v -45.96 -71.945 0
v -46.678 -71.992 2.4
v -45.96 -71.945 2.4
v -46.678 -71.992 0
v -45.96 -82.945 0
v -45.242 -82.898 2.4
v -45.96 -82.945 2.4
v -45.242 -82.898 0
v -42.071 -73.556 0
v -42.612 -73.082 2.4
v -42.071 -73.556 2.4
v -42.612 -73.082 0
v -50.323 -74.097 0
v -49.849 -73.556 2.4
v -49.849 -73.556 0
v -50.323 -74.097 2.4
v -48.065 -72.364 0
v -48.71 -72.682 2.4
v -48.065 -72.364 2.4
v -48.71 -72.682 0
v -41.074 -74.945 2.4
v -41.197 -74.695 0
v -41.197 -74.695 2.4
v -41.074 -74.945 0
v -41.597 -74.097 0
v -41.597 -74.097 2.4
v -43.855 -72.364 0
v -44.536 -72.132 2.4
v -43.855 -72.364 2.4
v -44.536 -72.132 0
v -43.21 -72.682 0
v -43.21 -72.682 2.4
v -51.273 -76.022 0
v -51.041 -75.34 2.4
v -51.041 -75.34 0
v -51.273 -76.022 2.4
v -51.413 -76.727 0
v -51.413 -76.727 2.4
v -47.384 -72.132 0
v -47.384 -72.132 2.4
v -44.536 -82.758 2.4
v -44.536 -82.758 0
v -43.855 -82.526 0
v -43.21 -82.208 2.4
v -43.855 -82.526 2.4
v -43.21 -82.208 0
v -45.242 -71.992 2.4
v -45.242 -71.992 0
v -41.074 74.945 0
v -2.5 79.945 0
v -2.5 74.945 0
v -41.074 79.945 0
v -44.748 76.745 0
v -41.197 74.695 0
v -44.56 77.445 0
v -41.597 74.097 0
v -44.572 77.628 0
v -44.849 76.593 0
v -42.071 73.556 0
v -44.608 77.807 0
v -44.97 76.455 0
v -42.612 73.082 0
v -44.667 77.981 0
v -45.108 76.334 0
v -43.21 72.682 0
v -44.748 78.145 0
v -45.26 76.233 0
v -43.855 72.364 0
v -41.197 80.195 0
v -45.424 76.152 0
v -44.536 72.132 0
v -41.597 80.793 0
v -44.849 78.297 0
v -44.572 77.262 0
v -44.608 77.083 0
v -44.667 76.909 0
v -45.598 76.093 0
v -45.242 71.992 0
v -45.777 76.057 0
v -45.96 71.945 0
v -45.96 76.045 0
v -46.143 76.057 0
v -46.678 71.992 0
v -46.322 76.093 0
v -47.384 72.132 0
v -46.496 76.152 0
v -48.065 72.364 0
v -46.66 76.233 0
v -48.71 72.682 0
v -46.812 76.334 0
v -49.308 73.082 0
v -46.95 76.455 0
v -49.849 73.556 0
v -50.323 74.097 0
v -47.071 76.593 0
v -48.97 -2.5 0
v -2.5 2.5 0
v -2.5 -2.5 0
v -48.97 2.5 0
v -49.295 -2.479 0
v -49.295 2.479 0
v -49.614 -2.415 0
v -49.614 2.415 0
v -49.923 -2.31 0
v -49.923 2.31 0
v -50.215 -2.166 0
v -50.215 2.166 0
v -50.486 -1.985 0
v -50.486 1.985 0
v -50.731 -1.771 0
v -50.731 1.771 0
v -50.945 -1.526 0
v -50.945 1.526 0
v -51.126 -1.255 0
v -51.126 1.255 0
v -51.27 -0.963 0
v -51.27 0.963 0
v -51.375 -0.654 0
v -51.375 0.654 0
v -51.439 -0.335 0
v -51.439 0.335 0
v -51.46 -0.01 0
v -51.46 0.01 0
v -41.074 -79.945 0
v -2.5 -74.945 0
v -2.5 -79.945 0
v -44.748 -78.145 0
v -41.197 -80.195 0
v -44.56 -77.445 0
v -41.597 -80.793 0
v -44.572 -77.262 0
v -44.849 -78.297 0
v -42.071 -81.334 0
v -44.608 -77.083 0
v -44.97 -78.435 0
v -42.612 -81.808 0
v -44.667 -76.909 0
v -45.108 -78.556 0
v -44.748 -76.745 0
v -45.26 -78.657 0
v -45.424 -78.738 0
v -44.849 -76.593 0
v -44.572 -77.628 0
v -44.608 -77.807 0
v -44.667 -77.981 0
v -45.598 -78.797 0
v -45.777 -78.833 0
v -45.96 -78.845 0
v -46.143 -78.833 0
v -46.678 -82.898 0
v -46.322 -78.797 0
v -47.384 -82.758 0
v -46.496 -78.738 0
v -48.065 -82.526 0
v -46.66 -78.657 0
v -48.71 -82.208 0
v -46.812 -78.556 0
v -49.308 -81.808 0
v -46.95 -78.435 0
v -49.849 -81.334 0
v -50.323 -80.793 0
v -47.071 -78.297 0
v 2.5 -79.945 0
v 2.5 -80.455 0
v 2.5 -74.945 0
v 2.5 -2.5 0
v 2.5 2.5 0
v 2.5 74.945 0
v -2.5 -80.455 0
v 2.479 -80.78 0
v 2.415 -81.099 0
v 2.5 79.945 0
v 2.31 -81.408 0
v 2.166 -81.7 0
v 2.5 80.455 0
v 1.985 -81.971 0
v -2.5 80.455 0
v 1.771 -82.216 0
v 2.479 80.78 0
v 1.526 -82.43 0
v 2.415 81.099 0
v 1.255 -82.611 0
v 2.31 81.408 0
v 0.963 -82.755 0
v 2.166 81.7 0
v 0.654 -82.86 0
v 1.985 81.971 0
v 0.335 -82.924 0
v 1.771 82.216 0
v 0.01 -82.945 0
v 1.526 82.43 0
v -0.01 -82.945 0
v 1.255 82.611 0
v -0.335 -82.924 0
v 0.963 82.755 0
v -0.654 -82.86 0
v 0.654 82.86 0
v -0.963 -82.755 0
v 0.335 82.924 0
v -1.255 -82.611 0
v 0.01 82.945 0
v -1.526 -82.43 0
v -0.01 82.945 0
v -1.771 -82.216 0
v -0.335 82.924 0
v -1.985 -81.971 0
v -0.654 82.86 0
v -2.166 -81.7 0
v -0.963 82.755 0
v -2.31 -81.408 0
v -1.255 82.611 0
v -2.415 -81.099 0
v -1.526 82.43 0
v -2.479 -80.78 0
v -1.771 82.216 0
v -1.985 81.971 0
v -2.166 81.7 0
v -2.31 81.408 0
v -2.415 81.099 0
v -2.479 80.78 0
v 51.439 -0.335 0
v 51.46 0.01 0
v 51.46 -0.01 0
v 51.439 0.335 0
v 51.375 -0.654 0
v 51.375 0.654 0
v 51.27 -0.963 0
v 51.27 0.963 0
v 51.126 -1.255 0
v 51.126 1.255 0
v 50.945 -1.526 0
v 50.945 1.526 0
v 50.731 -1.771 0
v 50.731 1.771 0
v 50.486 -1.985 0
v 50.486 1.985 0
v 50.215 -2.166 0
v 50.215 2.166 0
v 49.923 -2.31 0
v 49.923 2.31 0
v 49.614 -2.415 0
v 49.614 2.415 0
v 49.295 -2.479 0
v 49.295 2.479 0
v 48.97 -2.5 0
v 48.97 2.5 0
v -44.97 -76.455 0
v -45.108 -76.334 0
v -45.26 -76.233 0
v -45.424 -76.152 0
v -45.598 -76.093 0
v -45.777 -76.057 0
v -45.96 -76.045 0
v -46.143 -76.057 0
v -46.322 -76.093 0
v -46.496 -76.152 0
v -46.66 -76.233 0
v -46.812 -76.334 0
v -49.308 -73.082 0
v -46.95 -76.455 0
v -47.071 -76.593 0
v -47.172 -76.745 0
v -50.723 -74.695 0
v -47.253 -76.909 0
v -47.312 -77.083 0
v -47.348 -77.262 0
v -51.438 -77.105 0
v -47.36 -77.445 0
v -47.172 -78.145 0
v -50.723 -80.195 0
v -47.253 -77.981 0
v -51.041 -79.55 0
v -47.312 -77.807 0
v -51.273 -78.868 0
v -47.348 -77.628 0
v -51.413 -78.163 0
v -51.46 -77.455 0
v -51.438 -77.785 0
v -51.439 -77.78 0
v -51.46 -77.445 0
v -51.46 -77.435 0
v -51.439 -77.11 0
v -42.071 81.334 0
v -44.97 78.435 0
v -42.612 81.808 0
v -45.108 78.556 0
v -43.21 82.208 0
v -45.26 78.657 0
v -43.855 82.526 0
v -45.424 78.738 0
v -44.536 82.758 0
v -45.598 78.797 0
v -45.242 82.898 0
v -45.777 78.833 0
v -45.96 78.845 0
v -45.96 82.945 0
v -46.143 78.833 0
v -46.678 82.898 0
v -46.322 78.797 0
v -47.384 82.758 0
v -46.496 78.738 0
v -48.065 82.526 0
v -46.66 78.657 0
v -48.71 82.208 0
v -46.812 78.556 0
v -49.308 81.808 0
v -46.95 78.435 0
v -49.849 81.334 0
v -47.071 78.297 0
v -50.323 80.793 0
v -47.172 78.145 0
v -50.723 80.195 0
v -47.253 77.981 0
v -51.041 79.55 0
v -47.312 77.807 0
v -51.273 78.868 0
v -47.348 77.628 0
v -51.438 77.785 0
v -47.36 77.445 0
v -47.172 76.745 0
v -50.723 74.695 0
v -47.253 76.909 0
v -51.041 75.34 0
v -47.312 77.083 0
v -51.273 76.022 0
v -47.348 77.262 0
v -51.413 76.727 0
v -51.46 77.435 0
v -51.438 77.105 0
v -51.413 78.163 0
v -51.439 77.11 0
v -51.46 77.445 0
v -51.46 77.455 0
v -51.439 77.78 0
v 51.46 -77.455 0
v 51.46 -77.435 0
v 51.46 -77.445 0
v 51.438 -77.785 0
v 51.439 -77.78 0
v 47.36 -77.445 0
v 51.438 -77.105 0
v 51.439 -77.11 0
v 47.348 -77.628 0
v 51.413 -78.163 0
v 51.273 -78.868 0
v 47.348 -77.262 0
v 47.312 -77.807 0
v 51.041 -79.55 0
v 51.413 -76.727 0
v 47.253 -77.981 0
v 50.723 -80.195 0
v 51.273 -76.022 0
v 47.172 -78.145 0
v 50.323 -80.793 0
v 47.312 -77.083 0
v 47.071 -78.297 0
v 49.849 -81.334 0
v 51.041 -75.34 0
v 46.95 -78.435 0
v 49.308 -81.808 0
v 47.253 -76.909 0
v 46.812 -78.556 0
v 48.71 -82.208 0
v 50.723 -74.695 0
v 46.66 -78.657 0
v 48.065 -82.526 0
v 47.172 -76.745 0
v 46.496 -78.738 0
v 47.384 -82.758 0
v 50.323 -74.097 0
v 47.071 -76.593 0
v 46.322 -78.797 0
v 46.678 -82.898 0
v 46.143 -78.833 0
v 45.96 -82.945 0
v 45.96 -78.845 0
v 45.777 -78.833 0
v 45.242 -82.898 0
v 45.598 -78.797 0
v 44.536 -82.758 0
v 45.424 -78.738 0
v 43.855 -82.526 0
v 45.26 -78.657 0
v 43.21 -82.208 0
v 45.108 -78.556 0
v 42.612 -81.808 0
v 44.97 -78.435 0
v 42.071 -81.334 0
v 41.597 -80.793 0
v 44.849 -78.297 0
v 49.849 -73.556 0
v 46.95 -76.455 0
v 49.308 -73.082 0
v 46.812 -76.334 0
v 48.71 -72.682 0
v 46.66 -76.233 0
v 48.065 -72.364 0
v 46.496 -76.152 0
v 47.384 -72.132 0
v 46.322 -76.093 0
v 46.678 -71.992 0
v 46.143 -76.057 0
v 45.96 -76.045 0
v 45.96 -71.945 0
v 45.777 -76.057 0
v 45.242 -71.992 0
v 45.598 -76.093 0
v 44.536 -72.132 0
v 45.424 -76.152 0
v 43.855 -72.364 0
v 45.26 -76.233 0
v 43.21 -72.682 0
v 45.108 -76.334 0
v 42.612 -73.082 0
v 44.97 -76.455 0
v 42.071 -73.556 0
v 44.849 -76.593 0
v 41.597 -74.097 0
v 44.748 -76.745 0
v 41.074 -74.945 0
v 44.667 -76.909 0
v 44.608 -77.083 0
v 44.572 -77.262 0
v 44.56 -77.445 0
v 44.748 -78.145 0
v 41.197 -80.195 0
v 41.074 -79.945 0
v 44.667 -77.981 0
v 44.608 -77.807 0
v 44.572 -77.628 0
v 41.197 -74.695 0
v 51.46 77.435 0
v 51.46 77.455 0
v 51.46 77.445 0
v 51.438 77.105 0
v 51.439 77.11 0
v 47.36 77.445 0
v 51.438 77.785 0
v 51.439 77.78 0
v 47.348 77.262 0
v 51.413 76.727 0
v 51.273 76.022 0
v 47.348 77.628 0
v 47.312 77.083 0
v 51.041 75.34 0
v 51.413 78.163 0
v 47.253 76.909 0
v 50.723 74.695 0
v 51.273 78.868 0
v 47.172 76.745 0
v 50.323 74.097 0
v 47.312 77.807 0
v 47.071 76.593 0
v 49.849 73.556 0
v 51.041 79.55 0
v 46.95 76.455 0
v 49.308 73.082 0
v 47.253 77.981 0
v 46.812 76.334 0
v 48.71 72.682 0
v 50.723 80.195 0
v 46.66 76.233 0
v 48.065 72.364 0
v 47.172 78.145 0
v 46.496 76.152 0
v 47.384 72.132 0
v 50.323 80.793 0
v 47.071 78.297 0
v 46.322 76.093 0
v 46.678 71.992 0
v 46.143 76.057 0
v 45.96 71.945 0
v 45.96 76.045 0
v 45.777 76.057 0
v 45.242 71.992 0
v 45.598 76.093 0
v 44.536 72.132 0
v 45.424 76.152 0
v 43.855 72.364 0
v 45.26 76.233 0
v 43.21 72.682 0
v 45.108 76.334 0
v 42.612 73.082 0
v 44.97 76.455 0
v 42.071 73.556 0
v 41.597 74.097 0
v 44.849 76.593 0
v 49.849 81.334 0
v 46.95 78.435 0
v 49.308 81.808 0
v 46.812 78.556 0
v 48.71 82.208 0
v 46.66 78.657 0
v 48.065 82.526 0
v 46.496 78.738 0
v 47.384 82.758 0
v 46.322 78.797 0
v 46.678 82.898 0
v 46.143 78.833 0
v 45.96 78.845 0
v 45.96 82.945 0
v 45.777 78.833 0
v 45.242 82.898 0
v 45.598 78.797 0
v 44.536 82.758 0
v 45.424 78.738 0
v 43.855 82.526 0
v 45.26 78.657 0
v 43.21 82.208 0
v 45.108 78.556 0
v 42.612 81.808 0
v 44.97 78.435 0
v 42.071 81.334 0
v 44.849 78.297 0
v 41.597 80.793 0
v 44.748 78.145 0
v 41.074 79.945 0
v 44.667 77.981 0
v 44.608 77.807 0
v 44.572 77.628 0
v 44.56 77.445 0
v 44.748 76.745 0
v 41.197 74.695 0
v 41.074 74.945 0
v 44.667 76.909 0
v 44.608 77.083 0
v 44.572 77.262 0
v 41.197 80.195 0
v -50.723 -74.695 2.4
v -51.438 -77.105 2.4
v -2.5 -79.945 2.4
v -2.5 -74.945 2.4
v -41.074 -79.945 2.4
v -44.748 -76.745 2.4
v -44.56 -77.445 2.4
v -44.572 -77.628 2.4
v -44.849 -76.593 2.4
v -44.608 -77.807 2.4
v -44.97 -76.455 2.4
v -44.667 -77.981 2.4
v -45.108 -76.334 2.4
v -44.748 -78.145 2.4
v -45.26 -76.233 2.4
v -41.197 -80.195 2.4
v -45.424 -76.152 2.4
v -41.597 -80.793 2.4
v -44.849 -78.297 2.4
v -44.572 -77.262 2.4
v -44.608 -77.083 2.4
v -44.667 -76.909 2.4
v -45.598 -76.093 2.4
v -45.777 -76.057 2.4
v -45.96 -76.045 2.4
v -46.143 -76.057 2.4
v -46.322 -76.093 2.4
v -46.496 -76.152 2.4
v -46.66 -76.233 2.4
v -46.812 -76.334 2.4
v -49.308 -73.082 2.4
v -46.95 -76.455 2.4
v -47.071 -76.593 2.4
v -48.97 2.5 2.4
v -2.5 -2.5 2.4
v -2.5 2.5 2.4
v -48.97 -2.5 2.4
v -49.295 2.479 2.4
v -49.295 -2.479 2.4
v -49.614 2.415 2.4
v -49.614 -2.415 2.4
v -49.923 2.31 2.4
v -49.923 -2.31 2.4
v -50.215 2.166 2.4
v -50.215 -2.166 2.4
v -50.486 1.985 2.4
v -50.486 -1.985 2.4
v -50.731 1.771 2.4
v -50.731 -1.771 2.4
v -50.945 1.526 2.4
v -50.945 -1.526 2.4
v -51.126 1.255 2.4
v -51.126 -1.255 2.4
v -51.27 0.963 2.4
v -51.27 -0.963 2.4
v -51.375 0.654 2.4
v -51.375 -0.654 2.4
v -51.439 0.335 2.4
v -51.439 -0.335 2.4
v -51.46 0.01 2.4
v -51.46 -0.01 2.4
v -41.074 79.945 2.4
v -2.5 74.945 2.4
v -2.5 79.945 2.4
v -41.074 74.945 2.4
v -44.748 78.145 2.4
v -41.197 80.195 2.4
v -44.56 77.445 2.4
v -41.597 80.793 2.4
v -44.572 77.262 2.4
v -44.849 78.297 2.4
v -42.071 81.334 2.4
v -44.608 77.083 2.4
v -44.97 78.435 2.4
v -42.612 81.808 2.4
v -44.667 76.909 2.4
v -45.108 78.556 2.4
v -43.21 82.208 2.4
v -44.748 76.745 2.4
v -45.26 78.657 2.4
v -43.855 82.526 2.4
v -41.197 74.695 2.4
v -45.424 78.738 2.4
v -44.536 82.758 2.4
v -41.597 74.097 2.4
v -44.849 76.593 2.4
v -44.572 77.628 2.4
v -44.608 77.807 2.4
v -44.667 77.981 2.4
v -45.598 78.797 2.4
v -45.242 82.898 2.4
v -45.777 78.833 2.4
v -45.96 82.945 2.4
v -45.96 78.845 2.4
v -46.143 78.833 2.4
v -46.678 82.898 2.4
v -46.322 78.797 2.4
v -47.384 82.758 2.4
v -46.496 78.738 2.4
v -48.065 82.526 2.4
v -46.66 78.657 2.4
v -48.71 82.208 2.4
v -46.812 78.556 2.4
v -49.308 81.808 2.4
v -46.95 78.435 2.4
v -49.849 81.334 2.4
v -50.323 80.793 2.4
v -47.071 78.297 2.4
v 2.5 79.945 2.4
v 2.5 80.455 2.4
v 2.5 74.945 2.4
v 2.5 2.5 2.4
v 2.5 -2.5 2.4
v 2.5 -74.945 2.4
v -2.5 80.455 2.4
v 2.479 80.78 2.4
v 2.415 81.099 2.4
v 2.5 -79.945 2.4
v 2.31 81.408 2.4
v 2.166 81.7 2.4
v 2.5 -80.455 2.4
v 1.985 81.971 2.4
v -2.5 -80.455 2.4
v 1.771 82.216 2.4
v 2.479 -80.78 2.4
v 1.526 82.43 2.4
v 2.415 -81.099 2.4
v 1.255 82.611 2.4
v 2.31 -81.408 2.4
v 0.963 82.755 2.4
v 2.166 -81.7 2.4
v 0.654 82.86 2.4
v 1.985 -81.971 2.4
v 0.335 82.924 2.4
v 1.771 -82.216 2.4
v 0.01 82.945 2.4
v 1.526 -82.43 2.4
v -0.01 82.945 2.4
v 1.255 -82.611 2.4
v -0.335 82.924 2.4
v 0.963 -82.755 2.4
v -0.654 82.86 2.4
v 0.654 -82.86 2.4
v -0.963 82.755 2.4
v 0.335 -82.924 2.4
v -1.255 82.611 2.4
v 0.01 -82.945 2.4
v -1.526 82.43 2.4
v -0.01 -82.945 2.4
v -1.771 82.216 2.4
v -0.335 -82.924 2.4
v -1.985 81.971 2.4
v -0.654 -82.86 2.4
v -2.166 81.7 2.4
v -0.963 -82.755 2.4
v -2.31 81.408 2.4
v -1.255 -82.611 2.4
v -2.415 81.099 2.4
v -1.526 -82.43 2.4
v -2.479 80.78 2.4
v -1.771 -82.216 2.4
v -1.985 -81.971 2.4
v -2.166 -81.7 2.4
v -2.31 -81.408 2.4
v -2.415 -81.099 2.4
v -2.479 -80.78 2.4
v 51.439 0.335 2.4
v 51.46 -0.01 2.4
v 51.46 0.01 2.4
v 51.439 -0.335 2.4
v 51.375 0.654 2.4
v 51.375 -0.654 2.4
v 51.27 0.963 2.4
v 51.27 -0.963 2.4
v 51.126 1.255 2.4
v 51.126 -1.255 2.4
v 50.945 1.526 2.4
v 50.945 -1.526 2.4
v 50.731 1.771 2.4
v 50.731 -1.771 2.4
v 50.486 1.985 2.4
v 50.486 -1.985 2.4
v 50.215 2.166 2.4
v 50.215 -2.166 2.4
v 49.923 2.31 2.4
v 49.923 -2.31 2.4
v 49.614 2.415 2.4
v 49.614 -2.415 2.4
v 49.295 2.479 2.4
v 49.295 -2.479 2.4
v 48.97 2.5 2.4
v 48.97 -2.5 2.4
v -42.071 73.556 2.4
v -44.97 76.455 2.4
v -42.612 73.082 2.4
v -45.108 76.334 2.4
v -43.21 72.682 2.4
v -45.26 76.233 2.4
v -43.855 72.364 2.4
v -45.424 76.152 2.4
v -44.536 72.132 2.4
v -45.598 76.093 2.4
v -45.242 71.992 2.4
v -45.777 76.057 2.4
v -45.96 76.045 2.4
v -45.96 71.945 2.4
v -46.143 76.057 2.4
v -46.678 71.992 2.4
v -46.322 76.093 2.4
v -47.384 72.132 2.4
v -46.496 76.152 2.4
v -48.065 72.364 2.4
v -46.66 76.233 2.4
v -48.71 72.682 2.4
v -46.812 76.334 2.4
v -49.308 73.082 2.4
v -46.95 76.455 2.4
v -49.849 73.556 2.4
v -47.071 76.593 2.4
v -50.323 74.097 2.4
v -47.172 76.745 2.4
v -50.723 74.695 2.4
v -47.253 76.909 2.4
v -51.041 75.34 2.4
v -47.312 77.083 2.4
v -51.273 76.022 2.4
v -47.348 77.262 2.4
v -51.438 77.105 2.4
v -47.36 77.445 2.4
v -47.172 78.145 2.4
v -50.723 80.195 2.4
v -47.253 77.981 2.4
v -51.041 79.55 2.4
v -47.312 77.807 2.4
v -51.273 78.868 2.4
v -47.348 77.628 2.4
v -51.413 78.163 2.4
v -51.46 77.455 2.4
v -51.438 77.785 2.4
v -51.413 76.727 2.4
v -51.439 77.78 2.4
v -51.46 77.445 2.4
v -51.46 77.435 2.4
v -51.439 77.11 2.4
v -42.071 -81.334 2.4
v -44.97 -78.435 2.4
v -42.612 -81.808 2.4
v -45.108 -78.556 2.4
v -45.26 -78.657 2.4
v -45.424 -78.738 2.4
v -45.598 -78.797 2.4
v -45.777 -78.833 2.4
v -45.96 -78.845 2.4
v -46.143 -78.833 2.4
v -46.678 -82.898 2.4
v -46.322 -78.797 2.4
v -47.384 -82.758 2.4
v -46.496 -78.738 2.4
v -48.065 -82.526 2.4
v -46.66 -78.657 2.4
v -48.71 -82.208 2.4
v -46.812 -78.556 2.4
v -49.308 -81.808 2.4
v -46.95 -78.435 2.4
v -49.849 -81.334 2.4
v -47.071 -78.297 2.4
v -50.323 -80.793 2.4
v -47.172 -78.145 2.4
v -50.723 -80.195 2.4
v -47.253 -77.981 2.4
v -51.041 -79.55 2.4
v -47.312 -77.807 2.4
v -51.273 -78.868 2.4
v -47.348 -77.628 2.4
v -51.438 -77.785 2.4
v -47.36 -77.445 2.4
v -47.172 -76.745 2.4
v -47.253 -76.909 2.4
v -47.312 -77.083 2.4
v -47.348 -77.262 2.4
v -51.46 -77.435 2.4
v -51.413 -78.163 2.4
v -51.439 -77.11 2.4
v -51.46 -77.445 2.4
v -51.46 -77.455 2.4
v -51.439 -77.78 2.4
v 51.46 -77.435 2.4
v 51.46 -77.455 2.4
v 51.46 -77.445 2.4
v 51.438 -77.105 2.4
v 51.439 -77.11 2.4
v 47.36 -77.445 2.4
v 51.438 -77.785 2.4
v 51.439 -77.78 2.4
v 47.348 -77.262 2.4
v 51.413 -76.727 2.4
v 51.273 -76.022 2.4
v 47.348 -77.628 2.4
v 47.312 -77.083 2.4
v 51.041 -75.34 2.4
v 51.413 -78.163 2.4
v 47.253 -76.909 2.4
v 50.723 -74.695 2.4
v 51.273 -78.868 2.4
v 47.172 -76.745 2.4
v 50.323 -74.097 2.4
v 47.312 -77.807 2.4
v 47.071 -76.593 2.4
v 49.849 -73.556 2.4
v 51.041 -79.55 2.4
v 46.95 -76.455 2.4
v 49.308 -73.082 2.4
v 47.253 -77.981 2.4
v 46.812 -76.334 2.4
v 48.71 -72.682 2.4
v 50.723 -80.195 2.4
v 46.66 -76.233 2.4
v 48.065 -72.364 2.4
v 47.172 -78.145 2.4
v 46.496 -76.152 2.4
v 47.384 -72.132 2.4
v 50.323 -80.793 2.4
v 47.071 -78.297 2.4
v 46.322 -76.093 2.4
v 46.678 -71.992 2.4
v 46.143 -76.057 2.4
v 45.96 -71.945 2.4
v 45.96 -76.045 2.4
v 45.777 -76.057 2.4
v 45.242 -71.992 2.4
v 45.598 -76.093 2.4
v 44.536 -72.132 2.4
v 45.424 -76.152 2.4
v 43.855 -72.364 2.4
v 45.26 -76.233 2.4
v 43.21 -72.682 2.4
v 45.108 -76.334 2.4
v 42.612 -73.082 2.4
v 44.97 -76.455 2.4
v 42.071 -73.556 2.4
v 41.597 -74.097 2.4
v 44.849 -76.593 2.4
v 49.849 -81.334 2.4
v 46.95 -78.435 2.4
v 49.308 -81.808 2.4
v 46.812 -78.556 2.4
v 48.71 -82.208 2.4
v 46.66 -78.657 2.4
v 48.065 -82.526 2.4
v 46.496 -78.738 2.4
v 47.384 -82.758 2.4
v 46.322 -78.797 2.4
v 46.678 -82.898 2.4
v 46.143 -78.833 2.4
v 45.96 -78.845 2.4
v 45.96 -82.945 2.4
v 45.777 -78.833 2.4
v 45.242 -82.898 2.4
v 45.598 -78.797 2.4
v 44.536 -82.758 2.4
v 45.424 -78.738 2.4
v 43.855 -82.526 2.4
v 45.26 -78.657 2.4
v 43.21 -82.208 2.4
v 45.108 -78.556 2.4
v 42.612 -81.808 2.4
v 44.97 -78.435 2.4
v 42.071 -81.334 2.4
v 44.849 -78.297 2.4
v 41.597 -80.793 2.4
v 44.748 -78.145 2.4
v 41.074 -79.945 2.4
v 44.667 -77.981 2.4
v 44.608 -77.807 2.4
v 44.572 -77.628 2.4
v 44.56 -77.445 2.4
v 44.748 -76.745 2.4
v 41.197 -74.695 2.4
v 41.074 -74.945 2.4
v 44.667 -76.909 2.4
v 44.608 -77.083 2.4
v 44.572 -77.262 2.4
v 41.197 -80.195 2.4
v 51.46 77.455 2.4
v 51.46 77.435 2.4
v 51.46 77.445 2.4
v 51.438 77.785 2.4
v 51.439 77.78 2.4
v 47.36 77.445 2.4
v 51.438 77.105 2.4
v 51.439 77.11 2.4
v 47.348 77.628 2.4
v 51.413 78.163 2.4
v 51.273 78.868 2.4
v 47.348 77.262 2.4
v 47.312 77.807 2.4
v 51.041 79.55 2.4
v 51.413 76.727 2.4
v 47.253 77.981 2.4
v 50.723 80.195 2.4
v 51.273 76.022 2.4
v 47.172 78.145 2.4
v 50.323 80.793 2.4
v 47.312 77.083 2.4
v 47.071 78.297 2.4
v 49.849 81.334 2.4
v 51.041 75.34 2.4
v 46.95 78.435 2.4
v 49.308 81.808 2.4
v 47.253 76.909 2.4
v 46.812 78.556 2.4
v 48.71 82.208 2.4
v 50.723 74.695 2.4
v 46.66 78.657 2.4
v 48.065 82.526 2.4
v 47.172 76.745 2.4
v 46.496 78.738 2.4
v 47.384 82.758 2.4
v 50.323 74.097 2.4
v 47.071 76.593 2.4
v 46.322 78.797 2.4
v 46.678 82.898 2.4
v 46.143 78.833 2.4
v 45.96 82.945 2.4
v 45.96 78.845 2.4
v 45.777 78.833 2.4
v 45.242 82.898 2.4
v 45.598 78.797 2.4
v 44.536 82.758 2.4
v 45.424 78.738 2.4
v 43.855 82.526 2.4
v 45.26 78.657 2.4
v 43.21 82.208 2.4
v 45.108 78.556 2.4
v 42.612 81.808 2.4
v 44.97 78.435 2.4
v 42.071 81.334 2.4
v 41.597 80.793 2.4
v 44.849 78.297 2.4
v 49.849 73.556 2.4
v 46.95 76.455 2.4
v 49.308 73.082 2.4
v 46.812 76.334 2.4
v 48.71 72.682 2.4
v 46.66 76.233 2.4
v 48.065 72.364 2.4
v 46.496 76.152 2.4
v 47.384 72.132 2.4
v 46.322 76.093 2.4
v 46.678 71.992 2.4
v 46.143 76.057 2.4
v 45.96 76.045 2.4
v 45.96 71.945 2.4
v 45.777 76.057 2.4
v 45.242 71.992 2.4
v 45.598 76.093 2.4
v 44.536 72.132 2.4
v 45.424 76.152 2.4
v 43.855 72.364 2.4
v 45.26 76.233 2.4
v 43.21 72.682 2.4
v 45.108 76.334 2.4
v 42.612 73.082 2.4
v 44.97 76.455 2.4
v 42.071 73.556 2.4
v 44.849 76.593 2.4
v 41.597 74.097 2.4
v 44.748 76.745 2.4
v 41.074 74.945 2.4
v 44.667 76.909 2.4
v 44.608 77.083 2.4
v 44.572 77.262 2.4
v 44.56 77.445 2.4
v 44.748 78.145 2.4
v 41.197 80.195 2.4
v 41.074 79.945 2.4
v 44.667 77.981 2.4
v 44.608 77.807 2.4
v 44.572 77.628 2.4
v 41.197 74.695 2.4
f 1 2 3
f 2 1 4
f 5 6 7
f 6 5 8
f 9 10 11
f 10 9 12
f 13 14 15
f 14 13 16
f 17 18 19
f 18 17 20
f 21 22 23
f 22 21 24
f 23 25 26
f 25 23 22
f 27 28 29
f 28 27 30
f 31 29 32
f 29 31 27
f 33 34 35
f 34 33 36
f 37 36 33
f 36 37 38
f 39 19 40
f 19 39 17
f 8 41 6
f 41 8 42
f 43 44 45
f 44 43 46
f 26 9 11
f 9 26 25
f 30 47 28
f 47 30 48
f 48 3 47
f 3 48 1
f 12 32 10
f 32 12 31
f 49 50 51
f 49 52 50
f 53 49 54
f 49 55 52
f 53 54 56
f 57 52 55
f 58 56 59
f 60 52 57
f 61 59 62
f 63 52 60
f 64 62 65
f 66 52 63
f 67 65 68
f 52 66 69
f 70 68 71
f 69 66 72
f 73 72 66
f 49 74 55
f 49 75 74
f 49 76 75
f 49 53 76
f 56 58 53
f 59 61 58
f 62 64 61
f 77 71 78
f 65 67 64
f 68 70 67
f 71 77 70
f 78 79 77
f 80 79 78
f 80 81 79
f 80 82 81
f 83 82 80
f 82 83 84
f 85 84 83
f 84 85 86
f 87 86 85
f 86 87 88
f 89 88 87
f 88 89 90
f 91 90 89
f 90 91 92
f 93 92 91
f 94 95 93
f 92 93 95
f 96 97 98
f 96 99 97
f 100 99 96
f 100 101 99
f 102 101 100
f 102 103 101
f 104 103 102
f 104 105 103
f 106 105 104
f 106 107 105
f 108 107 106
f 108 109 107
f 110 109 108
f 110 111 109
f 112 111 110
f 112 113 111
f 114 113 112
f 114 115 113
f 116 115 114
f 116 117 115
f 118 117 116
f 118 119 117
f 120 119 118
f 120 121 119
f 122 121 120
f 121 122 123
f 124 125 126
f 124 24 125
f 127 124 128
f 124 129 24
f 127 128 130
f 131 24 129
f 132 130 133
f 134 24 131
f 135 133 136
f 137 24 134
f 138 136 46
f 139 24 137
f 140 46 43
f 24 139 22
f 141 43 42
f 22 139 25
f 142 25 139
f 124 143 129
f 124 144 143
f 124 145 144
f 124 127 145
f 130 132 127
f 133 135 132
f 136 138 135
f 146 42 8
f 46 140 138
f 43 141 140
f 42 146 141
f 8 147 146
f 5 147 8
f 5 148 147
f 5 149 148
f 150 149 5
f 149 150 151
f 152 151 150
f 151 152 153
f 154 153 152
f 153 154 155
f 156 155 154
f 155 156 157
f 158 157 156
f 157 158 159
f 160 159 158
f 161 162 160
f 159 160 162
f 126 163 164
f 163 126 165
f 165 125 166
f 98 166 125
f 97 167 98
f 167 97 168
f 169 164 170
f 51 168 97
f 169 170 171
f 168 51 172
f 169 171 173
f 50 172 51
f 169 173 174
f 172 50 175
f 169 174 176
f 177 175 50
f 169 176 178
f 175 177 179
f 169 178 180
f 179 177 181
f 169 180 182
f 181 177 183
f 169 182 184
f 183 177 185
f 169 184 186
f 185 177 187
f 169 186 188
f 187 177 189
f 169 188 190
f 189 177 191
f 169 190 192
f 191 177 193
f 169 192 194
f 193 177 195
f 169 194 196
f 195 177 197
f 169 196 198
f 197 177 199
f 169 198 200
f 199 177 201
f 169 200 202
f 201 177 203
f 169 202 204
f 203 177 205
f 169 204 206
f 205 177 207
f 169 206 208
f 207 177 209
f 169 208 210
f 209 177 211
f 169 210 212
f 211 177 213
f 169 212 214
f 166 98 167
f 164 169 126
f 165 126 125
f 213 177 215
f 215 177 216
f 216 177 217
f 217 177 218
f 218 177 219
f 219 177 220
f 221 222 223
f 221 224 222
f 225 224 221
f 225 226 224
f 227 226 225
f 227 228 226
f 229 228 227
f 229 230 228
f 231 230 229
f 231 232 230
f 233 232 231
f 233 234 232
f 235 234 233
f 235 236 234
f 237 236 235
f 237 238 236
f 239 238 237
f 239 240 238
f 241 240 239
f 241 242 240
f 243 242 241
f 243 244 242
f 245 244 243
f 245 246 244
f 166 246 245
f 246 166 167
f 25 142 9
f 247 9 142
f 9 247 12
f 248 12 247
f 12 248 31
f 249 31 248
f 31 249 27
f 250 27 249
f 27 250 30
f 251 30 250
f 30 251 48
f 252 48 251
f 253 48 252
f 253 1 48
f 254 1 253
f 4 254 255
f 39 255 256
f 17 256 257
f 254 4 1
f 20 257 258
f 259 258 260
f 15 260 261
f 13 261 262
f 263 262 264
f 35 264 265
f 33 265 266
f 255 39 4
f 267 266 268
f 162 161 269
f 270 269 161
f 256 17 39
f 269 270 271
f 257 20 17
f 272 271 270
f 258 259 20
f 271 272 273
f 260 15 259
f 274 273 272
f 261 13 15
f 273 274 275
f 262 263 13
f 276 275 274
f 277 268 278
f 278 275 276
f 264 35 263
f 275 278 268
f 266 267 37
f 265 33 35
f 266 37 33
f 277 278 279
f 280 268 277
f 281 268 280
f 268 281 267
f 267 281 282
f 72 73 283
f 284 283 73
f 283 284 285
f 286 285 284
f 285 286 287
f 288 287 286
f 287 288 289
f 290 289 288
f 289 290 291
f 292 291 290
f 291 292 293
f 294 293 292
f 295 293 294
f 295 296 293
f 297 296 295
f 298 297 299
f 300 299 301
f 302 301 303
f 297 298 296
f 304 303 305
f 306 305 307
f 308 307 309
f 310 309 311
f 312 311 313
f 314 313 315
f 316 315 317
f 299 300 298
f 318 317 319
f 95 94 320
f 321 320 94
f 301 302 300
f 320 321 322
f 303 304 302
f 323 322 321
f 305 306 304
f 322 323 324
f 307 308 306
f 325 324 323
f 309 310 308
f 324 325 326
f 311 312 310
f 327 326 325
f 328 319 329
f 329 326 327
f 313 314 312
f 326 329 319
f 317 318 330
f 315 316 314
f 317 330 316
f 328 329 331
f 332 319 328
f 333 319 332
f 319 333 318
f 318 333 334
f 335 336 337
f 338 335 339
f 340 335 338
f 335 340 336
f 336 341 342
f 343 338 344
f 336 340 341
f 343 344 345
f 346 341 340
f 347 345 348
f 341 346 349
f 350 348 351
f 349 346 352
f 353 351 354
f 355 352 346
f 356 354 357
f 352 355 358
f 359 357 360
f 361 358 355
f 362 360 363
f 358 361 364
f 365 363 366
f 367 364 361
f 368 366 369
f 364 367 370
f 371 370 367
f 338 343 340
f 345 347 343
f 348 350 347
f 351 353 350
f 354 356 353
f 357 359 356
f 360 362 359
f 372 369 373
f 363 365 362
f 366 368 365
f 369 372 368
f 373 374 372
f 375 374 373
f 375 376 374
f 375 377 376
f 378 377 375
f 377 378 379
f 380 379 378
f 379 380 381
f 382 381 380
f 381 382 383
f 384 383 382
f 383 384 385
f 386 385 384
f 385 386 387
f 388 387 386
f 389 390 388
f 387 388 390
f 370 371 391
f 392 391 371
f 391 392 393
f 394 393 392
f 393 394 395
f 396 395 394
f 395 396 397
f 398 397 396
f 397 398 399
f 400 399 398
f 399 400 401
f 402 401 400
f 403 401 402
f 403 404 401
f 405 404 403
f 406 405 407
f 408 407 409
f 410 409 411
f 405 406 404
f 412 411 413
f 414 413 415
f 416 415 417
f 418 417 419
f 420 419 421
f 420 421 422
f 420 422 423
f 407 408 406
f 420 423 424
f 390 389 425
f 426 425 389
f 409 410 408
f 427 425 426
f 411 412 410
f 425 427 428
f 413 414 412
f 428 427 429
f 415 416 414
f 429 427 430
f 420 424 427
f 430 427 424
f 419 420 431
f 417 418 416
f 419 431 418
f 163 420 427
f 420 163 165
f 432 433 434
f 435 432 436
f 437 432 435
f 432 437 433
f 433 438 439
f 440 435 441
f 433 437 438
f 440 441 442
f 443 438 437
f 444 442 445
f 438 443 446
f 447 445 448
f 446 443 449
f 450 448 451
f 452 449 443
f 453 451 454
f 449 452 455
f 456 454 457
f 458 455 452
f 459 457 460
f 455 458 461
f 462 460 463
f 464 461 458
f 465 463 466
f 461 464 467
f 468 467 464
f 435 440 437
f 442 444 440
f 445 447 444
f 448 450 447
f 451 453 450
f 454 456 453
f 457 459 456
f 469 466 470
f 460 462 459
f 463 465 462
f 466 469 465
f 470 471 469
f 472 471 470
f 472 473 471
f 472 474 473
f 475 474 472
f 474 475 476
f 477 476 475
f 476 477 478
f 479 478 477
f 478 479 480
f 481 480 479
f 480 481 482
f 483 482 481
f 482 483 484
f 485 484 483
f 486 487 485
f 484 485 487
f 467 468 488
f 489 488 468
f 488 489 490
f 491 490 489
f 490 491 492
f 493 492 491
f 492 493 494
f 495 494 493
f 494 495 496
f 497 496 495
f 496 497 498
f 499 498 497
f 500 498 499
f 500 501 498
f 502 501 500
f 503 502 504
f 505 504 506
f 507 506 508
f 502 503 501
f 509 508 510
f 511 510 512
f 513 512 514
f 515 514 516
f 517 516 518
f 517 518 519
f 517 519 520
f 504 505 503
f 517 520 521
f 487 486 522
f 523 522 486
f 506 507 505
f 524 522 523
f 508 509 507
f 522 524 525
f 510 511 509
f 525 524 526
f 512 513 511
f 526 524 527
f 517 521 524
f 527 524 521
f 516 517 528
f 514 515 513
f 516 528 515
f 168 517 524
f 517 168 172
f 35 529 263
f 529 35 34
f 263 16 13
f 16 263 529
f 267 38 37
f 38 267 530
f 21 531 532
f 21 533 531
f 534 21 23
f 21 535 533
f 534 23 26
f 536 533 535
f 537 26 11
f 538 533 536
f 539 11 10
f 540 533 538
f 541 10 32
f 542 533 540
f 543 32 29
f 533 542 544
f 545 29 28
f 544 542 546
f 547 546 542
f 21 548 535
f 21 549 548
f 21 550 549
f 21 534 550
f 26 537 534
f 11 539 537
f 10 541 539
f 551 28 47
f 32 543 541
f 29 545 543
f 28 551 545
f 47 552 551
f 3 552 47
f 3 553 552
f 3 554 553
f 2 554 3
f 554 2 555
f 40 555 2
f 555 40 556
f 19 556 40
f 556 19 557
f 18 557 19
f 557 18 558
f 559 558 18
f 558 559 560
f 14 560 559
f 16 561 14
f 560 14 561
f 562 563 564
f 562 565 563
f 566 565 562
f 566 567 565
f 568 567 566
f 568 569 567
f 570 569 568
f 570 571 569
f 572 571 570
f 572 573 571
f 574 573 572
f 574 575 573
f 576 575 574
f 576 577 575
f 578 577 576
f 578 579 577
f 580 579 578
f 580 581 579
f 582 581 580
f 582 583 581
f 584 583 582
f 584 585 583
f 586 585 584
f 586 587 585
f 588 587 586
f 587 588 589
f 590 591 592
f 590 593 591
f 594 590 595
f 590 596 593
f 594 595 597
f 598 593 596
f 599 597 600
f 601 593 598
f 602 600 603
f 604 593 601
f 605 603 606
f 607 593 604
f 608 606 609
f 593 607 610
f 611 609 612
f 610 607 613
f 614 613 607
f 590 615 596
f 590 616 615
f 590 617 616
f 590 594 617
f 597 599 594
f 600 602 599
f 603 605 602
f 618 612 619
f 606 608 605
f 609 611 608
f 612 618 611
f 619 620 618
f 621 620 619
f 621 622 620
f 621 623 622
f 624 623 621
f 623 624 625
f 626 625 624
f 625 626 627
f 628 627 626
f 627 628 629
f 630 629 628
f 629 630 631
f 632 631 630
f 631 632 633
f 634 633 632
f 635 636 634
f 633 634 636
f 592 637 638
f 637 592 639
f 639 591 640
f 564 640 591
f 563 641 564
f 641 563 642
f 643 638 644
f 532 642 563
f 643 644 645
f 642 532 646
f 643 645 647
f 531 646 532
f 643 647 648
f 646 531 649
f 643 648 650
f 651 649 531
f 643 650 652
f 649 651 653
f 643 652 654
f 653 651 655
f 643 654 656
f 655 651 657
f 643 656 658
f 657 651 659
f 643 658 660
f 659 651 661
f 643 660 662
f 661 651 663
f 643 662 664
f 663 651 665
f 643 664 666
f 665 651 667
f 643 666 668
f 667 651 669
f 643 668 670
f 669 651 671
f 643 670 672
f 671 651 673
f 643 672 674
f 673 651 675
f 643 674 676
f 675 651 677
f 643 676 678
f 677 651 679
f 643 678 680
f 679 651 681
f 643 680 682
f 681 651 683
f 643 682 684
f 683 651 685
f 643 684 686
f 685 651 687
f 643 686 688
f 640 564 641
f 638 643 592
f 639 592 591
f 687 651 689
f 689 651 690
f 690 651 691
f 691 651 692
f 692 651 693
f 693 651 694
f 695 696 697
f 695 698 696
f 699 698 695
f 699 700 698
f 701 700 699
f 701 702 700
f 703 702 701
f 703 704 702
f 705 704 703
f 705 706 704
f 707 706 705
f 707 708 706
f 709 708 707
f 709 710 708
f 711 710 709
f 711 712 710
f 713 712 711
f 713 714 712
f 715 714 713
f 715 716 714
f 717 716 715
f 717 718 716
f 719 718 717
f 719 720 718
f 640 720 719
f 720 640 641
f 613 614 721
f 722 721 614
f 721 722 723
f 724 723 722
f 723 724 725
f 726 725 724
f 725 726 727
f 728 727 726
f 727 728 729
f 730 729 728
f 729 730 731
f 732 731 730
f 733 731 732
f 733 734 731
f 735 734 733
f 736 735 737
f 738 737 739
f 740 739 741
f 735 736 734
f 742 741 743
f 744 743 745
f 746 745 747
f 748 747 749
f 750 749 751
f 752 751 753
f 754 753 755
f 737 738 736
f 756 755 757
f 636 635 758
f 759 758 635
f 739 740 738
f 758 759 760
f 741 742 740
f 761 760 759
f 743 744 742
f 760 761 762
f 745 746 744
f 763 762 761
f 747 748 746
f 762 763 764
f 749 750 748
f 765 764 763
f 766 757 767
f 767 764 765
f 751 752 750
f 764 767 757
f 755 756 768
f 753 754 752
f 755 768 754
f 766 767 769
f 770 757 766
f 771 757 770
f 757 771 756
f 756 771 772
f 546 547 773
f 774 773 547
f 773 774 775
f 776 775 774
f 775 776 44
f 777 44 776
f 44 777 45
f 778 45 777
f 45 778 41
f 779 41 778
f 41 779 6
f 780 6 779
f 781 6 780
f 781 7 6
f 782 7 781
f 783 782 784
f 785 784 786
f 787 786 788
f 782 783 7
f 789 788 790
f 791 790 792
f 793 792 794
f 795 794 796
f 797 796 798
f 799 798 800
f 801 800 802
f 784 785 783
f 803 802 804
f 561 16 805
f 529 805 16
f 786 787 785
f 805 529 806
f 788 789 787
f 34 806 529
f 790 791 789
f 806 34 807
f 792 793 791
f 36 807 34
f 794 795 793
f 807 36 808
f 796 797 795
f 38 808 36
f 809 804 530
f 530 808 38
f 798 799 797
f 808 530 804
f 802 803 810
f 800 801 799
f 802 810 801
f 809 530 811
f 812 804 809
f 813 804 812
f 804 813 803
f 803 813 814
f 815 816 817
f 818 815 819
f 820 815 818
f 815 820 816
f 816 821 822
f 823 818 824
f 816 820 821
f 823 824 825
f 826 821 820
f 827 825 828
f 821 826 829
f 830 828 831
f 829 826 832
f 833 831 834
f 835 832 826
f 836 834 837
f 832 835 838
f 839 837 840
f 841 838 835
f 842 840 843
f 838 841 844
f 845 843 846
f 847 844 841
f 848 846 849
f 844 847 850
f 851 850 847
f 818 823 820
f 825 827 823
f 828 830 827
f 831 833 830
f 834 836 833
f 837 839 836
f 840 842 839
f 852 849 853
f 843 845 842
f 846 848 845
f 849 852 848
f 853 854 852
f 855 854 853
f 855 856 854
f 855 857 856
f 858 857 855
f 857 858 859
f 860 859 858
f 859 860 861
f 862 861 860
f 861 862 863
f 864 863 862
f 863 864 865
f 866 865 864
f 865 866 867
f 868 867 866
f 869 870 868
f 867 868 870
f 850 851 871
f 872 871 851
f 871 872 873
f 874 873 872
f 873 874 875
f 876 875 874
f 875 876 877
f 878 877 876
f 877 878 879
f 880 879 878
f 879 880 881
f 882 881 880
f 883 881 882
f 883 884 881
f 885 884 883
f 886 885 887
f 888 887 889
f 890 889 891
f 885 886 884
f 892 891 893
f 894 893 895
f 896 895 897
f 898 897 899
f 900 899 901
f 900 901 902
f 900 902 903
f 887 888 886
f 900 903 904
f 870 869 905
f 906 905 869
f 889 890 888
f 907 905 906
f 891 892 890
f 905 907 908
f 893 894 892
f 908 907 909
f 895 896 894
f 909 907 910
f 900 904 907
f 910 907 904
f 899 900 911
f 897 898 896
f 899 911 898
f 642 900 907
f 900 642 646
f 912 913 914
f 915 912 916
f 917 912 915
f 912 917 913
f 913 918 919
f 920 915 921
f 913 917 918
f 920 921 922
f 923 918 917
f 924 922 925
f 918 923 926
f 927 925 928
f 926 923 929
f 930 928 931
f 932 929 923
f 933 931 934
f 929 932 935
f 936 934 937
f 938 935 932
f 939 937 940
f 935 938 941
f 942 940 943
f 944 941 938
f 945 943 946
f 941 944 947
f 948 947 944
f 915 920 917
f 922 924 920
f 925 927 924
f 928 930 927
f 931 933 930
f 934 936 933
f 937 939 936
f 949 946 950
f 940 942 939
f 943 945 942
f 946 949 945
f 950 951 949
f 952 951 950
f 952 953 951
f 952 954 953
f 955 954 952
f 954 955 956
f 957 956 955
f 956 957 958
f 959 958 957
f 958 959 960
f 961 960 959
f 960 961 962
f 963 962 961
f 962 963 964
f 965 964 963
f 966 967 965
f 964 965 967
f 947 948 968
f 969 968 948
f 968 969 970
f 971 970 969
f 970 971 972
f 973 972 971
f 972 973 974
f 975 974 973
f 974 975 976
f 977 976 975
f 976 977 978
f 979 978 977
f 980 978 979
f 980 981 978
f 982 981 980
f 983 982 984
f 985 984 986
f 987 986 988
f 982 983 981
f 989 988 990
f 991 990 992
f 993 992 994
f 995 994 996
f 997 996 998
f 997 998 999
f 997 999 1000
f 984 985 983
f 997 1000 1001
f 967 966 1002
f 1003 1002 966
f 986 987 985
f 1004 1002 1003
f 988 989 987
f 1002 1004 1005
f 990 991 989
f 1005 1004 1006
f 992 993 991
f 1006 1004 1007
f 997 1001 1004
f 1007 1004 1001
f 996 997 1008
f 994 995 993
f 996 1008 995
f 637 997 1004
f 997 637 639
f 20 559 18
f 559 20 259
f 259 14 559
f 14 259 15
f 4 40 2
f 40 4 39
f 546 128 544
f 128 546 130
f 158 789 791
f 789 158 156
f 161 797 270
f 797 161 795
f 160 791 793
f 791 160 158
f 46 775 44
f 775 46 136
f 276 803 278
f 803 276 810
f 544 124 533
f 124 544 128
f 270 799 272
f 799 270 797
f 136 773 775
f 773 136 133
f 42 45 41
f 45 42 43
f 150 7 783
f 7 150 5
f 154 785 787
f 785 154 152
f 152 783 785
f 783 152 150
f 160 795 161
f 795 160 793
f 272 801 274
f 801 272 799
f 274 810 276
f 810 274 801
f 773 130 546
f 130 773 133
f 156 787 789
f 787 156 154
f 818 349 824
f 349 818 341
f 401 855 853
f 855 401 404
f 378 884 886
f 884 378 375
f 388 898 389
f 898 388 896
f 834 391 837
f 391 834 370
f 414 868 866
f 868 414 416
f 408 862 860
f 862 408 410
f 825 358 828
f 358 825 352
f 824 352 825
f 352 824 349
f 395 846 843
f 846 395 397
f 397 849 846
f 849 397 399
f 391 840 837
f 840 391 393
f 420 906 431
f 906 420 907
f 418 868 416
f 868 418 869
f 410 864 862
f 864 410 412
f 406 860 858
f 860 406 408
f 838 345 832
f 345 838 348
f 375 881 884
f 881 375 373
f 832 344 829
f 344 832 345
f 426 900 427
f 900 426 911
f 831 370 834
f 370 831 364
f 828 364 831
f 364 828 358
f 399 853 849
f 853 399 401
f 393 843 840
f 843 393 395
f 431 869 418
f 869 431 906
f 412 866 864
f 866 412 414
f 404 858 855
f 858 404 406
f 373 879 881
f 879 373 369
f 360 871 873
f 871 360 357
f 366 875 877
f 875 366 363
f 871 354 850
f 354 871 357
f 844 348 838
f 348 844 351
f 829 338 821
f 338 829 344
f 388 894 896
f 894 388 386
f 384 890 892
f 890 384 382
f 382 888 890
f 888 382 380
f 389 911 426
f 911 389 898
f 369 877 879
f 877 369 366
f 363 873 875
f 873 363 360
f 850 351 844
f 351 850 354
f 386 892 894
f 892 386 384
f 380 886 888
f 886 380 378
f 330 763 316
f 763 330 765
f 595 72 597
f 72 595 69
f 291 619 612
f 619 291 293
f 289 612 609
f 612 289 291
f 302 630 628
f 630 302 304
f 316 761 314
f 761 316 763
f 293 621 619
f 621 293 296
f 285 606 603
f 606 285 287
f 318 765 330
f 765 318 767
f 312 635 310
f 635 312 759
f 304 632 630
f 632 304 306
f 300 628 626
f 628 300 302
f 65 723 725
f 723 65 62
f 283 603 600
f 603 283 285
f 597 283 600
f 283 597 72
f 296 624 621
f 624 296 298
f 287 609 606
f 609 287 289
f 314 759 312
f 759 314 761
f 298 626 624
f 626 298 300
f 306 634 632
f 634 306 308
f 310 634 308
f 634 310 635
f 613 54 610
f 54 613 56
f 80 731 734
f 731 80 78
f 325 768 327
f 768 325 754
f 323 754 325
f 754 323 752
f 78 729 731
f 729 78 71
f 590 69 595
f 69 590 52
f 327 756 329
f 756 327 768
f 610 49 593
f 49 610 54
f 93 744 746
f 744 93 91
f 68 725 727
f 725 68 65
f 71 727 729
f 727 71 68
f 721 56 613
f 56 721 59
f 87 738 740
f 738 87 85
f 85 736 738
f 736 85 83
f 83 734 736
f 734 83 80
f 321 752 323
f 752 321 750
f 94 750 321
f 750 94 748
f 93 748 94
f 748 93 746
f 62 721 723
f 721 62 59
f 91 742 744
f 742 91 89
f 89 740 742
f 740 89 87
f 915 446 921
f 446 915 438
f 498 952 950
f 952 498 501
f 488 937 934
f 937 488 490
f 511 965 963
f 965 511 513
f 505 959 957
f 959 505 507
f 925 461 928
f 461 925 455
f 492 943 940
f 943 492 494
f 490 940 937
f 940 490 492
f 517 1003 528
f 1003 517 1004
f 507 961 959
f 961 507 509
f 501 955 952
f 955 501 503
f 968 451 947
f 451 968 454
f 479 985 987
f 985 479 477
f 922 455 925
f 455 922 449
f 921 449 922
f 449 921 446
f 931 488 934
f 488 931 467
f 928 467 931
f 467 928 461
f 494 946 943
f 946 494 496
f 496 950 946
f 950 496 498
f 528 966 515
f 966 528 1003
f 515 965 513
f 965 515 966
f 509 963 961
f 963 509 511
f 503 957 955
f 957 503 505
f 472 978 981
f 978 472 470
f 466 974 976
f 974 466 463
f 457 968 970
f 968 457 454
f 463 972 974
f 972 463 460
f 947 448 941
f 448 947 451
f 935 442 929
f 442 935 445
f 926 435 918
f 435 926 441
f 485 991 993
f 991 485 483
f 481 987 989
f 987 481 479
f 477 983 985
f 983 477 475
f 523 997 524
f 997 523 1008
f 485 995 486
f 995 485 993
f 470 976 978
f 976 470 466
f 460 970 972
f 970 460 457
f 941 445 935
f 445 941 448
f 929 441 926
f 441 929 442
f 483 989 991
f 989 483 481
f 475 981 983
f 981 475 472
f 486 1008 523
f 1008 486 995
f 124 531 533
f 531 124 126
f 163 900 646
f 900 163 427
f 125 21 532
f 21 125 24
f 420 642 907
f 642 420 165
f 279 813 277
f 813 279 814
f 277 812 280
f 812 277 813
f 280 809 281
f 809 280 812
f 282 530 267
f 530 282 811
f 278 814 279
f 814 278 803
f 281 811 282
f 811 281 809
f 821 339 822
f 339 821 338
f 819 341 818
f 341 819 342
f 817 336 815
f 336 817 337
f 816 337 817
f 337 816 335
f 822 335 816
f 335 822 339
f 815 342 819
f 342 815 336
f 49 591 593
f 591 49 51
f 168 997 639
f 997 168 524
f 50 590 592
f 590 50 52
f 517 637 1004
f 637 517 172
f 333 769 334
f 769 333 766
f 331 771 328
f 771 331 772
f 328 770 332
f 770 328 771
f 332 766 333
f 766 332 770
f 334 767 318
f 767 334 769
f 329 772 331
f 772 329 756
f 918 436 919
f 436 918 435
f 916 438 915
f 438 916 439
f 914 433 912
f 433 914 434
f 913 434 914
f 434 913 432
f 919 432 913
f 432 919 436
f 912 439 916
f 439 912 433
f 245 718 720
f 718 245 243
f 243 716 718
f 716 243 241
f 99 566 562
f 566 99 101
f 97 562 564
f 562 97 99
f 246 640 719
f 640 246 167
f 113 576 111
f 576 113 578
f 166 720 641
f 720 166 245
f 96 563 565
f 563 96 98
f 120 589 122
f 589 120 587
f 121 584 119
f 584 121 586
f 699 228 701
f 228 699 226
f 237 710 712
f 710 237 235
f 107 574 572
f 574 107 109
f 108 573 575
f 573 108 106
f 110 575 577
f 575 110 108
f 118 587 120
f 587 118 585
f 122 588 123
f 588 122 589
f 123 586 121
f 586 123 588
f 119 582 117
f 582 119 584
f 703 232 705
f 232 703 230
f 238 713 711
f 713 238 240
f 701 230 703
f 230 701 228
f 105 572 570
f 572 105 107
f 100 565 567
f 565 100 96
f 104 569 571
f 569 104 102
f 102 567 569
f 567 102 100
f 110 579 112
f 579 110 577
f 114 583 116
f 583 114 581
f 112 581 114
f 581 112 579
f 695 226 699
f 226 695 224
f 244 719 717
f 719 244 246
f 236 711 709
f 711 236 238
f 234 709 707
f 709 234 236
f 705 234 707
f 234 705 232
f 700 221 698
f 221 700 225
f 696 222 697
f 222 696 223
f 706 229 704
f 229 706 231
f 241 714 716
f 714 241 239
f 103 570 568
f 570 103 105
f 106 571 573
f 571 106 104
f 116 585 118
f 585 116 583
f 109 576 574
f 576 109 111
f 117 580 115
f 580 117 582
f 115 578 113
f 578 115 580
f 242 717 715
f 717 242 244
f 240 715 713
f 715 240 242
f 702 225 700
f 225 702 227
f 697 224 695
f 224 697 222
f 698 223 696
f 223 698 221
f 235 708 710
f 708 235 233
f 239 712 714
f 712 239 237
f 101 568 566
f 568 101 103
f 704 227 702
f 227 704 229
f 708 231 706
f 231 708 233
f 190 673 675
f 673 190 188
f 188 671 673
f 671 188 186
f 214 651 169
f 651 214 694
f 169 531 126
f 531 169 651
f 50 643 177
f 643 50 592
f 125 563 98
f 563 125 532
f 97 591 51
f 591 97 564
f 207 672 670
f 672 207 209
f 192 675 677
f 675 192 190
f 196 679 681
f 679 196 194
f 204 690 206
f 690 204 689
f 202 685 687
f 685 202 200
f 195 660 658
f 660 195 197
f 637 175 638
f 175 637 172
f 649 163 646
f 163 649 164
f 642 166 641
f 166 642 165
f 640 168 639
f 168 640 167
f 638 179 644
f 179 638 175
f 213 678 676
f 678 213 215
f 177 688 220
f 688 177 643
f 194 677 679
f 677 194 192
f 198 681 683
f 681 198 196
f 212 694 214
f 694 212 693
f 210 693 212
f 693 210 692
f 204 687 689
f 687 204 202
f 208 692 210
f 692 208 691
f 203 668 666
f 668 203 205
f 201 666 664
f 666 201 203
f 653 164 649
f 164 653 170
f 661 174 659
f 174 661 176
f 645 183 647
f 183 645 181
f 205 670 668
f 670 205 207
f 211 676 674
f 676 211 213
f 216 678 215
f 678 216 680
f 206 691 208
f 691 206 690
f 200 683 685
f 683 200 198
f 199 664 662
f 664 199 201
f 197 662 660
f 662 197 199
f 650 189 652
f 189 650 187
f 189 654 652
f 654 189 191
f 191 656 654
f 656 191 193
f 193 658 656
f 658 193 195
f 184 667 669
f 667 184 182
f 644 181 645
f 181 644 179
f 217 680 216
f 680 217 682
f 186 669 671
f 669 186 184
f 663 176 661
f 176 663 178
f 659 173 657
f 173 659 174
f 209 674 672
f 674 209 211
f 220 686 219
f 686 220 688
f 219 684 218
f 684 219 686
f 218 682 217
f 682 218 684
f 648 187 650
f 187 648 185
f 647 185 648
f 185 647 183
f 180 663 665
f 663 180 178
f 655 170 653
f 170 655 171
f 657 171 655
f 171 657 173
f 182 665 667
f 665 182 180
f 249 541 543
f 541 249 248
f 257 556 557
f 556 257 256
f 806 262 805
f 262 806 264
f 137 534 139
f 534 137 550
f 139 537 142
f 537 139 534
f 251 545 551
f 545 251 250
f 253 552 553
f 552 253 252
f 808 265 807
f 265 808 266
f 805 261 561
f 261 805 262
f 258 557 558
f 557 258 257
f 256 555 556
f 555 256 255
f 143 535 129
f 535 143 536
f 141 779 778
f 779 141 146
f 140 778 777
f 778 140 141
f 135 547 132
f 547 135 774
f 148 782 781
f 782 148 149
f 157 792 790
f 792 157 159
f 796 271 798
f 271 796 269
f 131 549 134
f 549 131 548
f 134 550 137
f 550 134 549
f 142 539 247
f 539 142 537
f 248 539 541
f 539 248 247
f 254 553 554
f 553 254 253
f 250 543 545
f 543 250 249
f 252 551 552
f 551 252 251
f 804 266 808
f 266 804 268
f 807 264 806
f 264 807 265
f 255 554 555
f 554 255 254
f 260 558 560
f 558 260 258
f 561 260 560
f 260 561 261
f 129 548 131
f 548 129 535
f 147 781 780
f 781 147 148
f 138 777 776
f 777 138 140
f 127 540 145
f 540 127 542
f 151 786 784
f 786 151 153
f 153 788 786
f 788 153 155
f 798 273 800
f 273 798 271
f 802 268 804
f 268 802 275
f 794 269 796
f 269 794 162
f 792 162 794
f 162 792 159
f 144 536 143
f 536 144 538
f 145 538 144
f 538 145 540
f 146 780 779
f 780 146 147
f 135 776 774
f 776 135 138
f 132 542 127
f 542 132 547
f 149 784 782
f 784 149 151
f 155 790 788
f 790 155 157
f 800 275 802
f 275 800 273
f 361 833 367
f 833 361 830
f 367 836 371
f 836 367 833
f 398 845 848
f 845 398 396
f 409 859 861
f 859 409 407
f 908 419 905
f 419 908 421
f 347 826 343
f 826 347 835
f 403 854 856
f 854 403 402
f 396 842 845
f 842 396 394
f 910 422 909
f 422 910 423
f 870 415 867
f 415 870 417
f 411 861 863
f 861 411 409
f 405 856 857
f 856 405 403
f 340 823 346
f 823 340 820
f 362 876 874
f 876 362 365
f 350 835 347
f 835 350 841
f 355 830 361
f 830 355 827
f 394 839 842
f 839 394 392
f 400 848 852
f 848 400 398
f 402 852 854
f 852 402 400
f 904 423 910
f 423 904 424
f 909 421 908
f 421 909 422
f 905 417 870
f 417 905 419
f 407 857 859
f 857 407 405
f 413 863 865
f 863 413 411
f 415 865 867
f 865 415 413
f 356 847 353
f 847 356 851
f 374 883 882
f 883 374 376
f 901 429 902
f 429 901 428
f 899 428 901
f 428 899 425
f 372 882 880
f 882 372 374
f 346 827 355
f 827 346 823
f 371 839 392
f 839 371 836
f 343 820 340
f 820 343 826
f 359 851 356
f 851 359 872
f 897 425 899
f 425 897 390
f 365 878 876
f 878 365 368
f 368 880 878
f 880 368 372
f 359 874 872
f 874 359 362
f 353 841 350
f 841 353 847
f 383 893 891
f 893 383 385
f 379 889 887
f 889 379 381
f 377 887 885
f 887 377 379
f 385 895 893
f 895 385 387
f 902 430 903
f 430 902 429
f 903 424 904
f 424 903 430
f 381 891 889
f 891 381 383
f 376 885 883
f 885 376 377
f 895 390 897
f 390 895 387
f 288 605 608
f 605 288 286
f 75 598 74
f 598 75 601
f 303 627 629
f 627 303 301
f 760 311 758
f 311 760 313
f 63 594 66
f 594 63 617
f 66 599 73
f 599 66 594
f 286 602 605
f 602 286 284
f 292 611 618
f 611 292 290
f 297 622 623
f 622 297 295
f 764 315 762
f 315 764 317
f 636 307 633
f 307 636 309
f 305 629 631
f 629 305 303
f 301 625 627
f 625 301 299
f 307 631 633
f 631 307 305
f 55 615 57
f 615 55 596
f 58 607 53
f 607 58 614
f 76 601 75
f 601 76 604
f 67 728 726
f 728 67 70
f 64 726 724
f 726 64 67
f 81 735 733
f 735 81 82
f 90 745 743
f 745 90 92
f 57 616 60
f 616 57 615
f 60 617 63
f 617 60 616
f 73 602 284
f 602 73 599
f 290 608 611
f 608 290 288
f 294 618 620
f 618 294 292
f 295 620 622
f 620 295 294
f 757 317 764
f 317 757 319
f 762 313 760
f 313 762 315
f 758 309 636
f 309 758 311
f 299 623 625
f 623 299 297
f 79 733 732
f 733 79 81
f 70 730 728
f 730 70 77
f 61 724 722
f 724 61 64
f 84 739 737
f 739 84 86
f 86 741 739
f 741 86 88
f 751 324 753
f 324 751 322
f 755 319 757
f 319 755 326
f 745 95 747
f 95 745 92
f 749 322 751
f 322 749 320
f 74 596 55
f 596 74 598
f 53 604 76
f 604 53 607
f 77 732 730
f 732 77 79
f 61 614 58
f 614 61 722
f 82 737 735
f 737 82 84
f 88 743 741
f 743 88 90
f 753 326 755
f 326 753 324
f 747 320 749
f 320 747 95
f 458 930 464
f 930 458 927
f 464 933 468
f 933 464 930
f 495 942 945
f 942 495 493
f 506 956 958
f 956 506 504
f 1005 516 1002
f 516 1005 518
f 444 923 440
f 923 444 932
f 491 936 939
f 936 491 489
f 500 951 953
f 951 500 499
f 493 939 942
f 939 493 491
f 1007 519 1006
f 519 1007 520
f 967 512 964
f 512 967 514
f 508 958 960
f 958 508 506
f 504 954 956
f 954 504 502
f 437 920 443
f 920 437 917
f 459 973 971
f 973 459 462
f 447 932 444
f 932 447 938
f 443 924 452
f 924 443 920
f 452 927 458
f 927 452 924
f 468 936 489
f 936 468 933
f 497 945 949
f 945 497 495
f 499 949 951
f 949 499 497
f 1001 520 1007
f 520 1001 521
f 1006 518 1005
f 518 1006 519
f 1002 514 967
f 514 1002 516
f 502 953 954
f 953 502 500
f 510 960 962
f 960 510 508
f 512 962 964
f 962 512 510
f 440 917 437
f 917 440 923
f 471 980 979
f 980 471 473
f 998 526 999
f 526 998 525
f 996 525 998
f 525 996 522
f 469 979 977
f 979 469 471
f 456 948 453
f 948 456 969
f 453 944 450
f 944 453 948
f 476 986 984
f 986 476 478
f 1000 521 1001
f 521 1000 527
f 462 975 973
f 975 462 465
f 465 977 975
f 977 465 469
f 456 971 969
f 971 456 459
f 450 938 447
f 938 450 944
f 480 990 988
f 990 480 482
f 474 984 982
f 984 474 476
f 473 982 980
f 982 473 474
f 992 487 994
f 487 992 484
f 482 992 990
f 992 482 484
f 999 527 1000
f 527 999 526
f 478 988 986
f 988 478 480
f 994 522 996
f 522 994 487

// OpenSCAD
/*
  Minimal LCD mounting-hole placement test for the Elecrow DSI07419T
  7 inch 800x480 DSI touch display.

  Units: mm
  Orientation: portrait, matching face_recog_door_lock_kiosk.scad

  Elecrow outer hole pitch from dimension image:
  landscape pitch = 154.89 x 91.92 mm
  portrait pitch  = 91.92 x 154.89 mm
*/

$fn = 48;
eps = 0.02;

hole_pitch_x = 91.92;
hole_pitch_y = 154.89;
hole_d = 2.80;       // M2.5 clearance
pad_d = 11.00;
rib_w = 5.00;
template_t = 2.40;

hole_points = [
    [-hole_pitch_x / 2, -hole_pitch_y / 2],
    [ hole_pitch_x / 2, -hole_pitch_y / 2],
    [-hole_pitch_x / 2,  hole_pitch_y / 2],
    [ hole_pitch_x / 2,  hole_pitch_y / 2]
];

module rounded_rect_2d(w, h, r) {
    rr = min(r, min(w, h) / 2 - 0.01);
    offset(r = rr)
        square([w - 2 * rr, h - 2 * rr], center = true);
}

module pad_at(p) {
    translate([p[0], p[1], 0])
        cylinder(d = pad_d, h = template_t);
}

module hole_at(p) {
    translate([p[0], p[1], -eps])
        cylinder(d = hole_d, h = template_t + 2 * eps);
}

module lcd_mount_hole_test() {
    difference() {
        union() {
            // Four pads.
            for (p = hole_points)
                pad_at(p);

            // Thin ribs: enough to hold spacing, minimal plastic.
            linear_extrude(height = template_t)
                rounded_rect_2d(hole_pitch_x + pad_d, rib_w, rib_w / 2);

            linear_extrude(height = template_t)
                rounded_rect_2d(rib_w, hole_pitch_y + pad_d, rib_w / 2);

            for (y = [-hole_pitch_y / 2, hole_pitch_y / 2])
                translate([0, y, 0])
                    linear_extrude(height = template_t)
                        rounded_rect_2d(hole_pitch_x + pad_d, rib_w, rib_w / 2);
        }

        for (p = hole_points)
            hole_at(p);
    }
}

lcd_mount_hole_test();
